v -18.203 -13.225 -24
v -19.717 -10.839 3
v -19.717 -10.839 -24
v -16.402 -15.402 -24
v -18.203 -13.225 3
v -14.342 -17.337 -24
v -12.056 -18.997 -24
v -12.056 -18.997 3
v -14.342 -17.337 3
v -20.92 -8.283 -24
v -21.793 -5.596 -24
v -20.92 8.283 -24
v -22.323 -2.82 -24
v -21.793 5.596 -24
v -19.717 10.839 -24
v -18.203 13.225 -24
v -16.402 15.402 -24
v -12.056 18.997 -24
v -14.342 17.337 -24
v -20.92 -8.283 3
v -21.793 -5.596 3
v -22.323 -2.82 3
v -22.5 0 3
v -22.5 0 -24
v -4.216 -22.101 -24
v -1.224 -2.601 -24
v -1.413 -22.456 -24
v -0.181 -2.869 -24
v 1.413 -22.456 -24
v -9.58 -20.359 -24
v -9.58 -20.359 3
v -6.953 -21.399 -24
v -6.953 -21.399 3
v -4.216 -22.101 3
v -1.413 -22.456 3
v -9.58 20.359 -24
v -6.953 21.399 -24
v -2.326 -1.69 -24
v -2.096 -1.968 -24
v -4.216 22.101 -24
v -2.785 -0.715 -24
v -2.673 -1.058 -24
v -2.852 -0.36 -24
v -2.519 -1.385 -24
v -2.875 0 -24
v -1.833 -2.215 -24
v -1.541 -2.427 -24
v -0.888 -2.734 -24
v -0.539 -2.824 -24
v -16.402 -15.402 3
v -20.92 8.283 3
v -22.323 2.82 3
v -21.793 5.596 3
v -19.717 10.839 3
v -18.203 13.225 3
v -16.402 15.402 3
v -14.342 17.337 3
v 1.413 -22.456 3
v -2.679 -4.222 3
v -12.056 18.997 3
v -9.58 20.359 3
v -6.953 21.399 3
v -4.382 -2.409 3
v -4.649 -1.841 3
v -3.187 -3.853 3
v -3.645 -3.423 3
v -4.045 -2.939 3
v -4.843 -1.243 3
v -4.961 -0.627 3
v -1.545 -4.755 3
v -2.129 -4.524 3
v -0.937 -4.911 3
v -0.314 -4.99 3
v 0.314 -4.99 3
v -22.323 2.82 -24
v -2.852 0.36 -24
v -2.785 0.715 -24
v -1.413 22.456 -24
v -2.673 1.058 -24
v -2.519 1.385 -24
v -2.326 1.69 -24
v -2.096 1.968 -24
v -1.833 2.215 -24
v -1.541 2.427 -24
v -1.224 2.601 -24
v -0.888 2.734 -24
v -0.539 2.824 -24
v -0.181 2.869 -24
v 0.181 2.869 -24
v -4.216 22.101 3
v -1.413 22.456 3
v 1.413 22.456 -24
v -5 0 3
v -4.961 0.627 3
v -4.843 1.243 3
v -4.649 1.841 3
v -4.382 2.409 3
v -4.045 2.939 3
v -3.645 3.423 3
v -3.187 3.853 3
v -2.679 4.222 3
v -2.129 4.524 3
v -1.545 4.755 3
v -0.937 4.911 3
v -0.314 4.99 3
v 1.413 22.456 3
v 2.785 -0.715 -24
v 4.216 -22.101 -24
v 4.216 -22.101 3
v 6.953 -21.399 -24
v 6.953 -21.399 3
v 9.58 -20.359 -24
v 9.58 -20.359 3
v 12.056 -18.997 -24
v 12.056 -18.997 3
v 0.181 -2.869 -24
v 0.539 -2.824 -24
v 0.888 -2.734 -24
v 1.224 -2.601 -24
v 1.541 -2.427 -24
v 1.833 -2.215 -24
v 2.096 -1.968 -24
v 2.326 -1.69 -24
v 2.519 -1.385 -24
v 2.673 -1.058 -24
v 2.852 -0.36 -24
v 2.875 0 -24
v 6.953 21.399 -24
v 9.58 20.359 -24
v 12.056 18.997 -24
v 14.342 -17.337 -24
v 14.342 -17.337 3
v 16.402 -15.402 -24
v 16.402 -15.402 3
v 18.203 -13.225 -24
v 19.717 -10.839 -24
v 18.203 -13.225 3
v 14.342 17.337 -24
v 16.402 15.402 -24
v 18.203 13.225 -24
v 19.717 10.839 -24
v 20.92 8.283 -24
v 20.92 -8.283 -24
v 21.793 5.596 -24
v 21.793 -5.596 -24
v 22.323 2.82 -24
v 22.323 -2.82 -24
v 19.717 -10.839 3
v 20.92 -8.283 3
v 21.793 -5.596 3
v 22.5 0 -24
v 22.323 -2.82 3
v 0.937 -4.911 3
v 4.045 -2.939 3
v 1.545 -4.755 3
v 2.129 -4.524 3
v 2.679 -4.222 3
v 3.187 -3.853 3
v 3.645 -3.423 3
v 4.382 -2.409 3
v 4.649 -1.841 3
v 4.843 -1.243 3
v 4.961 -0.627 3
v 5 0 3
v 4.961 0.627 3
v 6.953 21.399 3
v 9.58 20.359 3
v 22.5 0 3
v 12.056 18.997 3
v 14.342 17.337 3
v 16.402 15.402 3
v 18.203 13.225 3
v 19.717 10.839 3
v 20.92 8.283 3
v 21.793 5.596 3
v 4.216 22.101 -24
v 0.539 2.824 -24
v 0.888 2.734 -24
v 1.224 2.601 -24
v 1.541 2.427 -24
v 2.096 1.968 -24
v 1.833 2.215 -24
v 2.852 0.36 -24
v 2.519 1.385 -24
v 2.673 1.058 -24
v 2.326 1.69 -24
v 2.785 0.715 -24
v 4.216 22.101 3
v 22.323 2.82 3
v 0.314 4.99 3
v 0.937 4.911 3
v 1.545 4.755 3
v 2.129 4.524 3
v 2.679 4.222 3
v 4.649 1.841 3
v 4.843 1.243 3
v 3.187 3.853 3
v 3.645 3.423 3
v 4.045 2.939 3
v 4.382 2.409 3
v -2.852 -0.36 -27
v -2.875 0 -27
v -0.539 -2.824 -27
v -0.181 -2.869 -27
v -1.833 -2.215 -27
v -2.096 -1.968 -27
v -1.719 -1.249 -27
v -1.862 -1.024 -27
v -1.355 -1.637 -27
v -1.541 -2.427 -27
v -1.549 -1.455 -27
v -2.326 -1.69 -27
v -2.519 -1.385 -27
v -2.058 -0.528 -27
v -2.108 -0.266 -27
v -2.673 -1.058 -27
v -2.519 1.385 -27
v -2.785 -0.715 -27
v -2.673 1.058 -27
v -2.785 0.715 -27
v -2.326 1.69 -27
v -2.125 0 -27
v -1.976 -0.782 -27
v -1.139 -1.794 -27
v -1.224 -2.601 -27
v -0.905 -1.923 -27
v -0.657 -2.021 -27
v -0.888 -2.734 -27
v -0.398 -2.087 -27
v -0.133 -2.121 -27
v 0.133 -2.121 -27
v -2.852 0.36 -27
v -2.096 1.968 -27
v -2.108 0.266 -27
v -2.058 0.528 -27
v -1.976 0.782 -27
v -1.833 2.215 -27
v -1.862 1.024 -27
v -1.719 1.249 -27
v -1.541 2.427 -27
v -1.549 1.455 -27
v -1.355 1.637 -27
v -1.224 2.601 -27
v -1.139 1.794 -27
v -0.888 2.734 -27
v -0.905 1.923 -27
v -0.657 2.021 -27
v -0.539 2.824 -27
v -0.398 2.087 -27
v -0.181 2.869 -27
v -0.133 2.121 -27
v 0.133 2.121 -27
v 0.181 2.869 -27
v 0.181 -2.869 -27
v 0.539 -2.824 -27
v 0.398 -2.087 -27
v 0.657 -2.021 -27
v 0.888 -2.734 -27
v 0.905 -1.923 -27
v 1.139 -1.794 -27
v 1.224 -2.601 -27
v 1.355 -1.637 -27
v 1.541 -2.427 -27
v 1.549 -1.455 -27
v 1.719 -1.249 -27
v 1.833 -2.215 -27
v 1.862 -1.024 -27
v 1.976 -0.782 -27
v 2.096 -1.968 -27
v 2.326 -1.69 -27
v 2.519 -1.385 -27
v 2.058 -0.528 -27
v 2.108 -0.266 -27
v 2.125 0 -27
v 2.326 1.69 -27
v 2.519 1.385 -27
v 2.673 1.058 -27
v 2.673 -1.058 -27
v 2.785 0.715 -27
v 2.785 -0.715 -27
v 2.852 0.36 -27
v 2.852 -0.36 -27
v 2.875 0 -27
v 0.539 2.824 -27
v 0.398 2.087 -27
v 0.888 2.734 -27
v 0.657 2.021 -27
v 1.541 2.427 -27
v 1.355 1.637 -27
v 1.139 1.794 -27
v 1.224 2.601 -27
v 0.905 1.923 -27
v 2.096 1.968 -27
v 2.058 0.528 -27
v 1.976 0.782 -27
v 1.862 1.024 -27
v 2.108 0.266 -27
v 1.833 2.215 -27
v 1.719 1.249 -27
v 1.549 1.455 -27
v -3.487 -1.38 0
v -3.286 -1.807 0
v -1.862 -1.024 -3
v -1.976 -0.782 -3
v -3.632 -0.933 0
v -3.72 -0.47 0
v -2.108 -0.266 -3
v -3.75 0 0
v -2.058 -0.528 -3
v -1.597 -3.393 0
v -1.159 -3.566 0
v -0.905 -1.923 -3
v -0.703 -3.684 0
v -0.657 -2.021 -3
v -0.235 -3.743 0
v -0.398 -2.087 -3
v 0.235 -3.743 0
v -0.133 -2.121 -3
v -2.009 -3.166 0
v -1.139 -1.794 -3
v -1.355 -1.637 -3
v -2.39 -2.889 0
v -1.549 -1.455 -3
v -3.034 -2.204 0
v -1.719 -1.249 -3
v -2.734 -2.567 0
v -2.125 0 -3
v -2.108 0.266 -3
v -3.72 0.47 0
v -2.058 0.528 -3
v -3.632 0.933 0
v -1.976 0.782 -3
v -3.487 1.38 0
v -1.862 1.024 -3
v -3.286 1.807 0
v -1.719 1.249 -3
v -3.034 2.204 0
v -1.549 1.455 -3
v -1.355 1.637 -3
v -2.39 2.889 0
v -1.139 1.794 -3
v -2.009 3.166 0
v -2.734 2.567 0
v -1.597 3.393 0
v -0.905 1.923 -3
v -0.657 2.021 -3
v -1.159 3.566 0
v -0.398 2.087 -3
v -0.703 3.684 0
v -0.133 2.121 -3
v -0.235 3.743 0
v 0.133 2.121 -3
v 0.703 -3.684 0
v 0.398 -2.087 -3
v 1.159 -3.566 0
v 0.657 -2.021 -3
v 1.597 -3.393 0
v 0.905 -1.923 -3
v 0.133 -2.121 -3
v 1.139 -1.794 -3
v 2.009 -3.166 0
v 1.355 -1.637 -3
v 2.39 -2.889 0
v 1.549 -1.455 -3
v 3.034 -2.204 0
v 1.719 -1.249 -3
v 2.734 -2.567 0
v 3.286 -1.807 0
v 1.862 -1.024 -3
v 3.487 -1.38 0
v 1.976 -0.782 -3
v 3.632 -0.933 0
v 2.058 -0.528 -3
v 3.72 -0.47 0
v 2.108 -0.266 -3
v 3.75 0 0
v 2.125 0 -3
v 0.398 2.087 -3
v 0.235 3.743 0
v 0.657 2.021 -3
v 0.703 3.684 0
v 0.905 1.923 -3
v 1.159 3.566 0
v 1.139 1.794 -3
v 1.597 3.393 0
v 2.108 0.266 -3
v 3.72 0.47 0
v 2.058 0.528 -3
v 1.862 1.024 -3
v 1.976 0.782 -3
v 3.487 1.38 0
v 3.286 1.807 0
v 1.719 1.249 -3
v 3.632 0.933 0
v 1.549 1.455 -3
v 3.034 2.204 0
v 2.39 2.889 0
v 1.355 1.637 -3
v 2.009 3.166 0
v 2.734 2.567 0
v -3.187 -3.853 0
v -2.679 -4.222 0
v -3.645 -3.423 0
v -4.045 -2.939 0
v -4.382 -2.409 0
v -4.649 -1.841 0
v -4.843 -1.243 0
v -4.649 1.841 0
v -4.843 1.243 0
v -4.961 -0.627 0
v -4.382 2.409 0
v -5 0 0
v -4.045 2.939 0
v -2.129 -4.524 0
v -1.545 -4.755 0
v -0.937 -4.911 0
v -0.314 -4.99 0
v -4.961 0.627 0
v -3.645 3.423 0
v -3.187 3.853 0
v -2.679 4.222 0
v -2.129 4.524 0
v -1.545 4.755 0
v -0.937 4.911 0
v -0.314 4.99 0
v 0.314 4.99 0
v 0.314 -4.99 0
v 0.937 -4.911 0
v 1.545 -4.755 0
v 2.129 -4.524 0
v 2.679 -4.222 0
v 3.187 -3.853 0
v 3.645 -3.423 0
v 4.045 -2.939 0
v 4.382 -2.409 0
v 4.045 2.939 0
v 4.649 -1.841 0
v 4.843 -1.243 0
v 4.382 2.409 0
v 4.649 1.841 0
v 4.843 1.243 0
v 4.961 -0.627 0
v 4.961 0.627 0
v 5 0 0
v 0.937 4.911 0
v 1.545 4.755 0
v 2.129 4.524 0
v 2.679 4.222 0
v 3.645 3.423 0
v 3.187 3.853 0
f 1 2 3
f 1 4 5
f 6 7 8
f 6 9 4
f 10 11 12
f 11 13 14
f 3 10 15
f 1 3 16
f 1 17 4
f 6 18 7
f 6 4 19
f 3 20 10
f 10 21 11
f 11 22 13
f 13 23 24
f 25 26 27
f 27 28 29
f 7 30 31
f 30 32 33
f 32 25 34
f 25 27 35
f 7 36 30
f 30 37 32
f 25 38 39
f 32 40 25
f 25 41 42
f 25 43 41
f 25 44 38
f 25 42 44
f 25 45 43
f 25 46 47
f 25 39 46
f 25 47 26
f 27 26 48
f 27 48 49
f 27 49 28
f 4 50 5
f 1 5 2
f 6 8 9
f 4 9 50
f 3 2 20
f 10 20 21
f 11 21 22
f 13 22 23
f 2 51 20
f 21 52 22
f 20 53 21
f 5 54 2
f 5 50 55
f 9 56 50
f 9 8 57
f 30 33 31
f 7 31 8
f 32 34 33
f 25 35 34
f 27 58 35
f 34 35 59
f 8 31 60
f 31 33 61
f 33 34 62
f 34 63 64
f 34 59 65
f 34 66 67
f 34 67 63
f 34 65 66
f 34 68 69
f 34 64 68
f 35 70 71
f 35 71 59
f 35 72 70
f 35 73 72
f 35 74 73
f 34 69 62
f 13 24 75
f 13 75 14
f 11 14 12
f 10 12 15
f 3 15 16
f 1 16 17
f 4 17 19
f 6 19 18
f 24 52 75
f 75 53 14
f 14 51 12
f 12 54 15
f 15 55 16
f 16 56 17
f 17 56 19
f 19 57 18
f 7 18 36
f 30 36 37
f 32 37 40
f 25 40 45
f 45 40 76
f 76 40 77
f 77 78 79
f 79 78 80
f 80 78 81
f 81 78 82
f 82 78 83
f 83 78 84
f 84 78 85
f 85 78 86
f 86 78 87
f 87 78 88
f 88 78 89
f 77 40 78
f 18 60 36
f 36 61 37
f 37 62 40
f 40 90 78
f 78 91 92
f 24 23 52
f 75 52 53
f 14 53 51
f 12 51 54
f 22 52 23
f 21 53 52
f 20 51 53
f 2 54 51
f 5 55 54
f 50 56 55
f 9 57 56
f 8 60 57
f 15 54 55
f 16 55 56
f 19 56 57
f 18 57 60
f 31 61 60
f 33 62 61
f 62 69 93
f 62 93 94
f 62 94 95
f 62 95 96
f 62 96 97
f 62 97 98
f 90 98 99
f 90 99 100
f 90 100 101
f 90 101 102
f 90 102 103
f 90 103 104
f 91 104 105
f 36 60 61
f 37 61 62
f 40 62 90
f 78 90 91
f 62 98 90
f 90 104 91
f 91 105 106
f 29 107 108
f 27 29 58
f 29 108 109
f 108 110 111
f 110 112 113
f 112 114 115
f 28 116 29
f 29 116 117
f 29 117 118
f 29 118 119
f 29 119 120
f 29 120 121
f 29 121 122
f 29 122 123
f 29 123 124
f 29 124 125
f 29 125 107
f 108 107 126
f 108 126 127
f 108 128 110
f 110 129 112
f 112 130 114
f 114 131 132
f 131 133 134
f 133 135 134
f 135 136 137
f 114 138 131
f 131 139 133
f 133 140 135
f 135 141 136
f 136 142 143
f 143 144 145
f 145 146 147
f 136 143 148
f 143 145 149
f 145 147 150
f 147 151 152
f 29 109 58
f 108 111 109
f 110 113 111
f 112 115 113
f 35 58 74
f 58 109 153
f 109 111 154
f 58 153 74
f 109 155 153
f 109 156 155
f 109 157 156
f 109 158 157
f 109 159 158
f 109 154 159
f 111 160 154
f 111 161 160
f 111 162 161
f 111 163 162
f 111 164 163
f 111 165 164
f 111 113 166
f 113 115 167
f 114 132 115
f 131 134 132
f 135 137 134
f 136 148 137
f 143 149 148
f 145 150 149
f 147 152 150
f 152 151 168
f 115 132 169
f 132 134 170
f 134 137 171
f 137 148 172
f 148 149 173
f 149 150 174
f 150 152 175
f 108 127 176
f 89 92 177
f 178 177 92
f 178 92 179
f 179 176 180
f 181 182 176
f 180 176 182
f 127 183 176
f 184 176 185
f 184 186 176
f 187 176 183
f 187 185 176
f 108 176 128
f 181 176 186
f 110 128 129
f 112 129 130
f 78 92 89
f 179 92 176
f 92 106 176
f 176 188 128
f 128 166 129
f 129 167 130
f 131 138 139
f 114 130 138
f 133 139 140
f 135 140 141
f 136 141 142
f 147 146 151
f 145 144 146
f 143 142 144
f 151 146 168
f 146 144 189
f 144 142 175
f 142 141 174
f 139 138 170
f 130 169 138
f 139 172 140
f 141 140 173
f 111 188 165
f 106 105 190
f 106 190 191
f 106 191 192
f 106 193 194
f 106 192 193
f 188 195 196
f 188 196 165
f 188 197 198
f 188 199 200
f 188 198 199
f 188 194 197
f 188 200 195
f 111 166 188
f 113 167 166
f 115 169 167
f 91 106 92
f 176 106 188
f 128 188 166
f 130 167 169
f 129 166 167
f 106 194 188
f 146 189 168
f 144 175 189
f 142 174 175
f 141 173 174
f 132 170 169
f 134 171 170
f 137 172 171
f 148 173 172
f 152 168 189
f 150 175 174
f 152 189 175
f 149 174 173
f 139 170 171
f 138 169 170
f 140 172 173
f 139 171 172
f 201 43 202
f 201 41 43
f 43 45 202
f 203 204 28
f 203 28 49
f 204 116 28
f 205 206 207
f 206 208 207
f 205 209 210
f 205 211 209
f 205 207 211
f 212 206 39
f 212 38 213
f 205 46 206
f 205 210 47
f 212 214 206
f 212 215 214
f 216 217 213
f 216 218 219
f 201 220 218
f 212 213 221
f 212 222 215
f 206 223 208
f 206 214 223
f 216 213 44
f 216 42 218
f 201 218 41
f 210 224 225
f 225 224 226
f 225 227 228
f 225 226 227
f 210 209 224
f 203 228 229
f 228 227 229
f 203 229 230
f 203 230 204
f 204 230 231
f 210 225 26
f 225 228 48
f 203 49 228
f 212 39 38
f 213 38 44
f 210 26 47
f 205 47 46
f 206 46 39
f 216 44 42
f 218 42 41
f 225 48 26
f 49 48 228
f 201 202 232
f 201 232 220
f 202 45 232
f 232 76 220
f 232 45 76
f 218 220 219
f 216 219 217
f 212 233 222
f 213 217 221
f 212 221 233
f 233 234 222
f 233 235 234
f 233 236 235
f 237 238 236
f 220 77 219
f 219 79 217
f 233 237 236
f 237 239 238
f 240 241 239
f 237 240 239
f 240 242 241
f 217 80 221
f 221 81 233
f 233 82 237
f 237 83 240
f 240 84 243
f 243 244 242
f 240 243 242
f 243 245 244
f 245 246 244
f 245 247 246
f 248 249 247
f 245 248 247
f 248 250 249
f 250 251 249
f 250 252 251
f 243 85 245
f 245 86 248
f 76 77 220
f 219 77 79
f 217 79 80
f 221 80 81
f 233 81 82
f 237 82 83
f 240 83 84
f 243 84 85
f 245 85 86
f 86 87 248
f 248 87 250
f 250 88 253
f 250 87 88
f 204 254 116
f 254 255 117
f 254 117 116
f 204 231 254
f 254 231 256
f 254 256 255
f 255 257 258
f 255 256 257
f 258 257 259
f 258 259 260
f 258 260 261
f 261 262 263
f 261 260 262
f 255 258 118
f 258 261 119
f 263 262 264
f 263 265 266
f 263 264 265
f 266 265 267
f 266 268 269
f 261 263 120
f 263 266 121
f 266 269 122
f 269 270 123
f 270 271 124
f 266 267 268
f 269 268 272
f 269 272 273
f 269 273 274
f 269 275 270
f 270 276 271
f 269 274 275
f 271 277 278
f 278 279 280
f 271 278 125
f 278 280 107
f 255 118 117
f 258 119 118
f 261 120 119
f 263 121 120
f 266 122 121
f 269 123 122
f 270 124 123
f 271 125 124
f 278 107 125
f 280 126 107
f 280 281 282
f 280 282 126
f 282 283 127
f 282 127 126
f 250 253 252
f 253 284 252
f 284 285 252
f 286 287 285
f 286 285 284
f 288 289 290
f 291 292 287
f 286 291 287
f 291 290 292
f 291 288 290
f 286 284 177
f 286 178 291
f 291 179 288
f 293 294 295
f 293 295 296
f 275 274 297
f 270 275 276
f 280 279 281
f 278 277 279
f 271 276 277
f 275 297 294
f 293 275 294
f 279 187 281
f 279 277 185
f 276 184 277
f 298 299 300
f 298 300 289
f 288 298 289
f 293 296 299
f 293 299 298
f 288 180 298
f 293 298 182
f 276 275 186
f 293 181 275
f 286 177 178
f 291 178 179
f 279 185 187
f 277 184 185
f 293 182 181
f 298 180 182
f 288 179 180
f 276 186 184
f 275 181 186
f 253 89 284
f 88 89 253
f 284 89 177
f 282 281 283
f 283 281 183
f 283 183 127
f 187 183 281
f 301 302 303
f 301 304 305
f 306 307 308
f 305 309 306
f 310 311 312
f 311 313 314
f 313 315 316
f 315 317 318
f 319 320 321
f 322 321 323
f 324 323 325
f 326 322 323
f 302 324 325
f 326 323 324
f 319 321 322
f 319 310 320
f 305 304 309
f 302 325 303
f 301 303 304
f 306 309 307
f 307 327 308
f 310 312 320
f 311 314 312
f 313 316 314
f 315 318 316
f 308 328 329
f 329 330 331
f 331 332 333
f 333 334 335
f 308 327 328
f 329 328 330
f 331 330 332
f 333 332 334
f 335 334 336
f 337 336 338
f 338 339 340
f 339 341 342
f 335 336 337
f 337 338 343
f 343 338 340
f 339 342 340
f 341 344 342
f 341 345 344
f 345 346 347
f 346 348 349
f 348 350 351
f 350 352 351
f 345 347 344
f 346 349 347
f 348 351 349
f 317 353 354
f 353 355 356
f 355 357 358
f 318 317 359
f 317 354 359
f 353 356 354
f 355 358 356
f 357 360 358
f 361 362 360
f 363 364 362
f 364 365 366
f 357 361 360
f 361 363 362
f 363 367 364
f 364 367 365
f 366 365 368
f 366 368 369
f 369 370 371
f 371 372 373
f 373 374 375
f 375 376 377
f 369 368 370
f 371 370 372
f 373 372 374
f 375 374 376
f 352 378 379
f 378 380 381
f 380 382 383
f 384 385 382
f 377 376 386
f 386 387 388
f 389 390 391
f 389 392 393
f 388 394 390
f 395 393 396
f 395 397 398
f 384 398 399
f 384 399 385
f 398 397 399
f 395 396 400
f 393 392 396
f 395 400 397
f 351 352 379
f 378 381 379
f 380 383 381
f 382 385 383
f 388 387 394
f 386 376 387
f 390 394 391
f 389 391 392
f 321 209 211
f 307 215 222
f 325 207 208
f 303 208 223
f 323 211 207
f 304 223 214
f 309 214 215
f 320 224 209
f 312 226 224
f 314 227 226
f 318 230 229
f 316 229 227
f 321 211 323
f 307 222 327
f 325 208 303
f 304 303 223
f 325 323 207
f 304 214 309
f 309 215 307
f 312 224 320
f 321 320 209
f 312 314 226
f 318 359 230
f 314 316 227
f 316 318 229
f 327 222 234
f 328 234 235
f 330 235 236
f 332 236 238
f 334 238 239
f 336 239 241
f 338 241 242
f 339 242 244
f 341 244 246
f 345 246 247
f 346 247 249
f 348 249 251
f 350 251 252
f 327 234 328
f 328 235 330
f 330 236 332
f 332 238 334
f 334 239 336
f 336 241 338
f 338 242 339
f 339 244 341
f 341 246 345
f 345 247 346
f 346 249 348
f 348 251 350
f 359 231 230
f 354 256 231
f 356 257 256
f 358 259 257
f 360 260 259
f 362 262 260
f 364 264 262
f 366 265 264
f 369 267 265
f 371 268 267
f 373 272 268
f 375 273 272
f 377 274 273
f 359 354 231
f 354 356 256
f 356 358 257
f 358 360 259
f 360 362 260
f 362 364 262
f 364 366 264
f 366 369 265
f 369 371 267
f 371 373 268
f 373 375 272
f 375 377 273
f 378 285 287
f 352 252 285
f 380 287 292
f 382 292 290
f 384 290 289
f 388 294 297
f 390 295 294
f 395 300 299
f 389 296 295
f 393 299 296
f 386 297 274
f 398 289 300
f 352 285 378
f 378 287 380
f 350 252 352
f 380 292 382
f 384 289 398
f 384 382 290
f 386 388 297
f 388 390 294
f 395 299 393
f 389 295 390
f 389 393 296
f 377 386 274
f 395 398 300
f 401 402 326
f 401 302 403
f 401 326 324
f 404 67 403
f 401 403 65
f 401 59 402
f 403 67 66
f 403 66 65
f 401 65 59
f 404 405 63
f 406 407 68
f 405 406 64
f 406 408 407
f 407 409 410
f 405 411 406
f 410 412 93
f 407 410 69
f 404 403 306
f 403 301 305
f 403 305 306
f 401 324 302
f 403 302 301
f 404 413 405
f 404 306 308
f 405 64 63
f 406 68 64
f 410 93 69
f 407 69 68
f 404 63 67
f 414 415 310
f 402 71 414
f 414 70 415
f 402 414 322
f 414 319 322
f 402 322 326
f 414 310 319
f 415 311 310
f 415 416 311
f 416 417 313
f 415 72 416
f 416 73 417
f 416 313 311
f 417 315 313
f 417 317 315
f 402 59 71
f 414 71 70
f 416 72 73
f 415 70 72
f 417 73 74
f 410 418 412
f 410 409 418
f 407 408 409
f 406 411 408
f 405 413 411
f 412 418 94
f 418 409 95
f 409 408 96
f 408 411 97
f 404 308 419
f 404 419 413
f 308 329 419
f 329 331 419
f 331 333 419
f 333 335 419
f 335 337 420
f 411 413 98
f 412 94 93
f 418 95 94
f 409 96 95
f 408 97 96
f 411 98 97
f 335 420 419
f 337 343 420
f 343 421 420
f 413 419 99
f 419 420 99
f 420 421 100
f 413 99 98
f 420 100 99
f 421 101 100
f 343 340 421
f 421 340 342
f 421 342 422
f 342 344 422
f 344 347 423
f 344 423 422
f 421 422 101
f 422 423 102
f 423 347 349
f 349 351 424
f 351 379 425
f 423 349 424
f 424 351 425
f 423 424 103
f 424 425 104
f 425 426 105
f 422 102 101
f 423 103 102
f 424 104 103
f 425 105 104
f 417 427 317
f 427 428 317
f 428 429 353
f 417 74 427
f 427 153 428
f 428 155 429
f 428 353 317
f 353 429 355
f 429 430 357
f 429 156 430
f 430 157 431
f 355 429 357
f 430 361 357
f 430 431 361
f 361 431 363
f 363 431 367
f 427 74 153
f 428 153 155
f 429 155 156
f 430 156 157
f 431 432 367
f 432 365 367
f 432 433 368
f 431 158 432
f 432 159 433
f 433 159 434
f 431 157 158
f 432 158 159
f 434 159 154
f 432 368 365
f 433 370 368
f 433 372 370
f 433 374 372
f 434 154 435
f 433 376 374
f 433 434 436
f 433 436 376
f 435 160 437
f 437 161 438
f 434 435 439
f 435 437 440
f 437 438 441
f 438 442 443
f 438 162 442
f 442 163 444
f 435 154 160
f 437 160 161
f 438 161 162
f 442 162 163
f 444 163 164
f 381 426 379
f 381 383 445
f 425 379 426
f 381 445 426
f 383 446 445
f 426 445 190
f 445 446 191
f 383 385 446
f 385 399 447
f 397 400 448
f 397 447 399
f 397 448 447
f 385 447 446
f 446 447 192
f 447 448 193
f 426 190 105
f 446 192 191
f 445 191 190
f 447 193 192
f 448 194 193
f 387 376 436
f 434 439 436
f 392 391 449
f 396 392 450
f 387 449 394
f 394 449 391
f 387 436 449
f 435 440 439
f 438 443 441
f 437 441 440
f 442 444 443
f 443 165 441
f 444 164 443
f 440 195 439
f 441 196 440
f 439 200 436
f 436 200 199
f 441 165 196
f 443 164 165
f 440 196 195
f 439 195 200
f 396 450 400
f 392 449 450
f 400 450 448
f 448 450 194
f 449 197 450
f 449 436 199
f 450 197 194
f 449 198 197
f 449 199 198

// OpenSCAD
$fn = 50;

difference() {
	union() {
		translate(v = [0, 0, -24.0]) {
			cylinder(h = 27, r = 22.5);
		}
		#translate(v = [0, 0, -27.0]) {
			cylinder(h = 27, r = 2.875);
		}
	}
	union() {
		translate(v = [0, 0, 0]) {
			rotate(a = [0, 0, 0]) {
				difference() {
					union() {
						translate(v = [0, 0, -27.0]) {
							cylinder(h = 27, r = 2.0);
						}
						translate(v = [0, 0, -3]) {
							cylinder(h = 3, r1 = 2.125, r2 = 3.75);
						}
						translate(v = [0, 0, -27.0]) {
							cylinder(h = 27, r = 2.125);
						}
						translate(v = [0, 0, -27.0]) {
							cylinder(h = 27, r = 2.0);
						}
					}
					union();
				}
			}
		}
		#cylinder(h = 3, r = 5.0);
	}
}
